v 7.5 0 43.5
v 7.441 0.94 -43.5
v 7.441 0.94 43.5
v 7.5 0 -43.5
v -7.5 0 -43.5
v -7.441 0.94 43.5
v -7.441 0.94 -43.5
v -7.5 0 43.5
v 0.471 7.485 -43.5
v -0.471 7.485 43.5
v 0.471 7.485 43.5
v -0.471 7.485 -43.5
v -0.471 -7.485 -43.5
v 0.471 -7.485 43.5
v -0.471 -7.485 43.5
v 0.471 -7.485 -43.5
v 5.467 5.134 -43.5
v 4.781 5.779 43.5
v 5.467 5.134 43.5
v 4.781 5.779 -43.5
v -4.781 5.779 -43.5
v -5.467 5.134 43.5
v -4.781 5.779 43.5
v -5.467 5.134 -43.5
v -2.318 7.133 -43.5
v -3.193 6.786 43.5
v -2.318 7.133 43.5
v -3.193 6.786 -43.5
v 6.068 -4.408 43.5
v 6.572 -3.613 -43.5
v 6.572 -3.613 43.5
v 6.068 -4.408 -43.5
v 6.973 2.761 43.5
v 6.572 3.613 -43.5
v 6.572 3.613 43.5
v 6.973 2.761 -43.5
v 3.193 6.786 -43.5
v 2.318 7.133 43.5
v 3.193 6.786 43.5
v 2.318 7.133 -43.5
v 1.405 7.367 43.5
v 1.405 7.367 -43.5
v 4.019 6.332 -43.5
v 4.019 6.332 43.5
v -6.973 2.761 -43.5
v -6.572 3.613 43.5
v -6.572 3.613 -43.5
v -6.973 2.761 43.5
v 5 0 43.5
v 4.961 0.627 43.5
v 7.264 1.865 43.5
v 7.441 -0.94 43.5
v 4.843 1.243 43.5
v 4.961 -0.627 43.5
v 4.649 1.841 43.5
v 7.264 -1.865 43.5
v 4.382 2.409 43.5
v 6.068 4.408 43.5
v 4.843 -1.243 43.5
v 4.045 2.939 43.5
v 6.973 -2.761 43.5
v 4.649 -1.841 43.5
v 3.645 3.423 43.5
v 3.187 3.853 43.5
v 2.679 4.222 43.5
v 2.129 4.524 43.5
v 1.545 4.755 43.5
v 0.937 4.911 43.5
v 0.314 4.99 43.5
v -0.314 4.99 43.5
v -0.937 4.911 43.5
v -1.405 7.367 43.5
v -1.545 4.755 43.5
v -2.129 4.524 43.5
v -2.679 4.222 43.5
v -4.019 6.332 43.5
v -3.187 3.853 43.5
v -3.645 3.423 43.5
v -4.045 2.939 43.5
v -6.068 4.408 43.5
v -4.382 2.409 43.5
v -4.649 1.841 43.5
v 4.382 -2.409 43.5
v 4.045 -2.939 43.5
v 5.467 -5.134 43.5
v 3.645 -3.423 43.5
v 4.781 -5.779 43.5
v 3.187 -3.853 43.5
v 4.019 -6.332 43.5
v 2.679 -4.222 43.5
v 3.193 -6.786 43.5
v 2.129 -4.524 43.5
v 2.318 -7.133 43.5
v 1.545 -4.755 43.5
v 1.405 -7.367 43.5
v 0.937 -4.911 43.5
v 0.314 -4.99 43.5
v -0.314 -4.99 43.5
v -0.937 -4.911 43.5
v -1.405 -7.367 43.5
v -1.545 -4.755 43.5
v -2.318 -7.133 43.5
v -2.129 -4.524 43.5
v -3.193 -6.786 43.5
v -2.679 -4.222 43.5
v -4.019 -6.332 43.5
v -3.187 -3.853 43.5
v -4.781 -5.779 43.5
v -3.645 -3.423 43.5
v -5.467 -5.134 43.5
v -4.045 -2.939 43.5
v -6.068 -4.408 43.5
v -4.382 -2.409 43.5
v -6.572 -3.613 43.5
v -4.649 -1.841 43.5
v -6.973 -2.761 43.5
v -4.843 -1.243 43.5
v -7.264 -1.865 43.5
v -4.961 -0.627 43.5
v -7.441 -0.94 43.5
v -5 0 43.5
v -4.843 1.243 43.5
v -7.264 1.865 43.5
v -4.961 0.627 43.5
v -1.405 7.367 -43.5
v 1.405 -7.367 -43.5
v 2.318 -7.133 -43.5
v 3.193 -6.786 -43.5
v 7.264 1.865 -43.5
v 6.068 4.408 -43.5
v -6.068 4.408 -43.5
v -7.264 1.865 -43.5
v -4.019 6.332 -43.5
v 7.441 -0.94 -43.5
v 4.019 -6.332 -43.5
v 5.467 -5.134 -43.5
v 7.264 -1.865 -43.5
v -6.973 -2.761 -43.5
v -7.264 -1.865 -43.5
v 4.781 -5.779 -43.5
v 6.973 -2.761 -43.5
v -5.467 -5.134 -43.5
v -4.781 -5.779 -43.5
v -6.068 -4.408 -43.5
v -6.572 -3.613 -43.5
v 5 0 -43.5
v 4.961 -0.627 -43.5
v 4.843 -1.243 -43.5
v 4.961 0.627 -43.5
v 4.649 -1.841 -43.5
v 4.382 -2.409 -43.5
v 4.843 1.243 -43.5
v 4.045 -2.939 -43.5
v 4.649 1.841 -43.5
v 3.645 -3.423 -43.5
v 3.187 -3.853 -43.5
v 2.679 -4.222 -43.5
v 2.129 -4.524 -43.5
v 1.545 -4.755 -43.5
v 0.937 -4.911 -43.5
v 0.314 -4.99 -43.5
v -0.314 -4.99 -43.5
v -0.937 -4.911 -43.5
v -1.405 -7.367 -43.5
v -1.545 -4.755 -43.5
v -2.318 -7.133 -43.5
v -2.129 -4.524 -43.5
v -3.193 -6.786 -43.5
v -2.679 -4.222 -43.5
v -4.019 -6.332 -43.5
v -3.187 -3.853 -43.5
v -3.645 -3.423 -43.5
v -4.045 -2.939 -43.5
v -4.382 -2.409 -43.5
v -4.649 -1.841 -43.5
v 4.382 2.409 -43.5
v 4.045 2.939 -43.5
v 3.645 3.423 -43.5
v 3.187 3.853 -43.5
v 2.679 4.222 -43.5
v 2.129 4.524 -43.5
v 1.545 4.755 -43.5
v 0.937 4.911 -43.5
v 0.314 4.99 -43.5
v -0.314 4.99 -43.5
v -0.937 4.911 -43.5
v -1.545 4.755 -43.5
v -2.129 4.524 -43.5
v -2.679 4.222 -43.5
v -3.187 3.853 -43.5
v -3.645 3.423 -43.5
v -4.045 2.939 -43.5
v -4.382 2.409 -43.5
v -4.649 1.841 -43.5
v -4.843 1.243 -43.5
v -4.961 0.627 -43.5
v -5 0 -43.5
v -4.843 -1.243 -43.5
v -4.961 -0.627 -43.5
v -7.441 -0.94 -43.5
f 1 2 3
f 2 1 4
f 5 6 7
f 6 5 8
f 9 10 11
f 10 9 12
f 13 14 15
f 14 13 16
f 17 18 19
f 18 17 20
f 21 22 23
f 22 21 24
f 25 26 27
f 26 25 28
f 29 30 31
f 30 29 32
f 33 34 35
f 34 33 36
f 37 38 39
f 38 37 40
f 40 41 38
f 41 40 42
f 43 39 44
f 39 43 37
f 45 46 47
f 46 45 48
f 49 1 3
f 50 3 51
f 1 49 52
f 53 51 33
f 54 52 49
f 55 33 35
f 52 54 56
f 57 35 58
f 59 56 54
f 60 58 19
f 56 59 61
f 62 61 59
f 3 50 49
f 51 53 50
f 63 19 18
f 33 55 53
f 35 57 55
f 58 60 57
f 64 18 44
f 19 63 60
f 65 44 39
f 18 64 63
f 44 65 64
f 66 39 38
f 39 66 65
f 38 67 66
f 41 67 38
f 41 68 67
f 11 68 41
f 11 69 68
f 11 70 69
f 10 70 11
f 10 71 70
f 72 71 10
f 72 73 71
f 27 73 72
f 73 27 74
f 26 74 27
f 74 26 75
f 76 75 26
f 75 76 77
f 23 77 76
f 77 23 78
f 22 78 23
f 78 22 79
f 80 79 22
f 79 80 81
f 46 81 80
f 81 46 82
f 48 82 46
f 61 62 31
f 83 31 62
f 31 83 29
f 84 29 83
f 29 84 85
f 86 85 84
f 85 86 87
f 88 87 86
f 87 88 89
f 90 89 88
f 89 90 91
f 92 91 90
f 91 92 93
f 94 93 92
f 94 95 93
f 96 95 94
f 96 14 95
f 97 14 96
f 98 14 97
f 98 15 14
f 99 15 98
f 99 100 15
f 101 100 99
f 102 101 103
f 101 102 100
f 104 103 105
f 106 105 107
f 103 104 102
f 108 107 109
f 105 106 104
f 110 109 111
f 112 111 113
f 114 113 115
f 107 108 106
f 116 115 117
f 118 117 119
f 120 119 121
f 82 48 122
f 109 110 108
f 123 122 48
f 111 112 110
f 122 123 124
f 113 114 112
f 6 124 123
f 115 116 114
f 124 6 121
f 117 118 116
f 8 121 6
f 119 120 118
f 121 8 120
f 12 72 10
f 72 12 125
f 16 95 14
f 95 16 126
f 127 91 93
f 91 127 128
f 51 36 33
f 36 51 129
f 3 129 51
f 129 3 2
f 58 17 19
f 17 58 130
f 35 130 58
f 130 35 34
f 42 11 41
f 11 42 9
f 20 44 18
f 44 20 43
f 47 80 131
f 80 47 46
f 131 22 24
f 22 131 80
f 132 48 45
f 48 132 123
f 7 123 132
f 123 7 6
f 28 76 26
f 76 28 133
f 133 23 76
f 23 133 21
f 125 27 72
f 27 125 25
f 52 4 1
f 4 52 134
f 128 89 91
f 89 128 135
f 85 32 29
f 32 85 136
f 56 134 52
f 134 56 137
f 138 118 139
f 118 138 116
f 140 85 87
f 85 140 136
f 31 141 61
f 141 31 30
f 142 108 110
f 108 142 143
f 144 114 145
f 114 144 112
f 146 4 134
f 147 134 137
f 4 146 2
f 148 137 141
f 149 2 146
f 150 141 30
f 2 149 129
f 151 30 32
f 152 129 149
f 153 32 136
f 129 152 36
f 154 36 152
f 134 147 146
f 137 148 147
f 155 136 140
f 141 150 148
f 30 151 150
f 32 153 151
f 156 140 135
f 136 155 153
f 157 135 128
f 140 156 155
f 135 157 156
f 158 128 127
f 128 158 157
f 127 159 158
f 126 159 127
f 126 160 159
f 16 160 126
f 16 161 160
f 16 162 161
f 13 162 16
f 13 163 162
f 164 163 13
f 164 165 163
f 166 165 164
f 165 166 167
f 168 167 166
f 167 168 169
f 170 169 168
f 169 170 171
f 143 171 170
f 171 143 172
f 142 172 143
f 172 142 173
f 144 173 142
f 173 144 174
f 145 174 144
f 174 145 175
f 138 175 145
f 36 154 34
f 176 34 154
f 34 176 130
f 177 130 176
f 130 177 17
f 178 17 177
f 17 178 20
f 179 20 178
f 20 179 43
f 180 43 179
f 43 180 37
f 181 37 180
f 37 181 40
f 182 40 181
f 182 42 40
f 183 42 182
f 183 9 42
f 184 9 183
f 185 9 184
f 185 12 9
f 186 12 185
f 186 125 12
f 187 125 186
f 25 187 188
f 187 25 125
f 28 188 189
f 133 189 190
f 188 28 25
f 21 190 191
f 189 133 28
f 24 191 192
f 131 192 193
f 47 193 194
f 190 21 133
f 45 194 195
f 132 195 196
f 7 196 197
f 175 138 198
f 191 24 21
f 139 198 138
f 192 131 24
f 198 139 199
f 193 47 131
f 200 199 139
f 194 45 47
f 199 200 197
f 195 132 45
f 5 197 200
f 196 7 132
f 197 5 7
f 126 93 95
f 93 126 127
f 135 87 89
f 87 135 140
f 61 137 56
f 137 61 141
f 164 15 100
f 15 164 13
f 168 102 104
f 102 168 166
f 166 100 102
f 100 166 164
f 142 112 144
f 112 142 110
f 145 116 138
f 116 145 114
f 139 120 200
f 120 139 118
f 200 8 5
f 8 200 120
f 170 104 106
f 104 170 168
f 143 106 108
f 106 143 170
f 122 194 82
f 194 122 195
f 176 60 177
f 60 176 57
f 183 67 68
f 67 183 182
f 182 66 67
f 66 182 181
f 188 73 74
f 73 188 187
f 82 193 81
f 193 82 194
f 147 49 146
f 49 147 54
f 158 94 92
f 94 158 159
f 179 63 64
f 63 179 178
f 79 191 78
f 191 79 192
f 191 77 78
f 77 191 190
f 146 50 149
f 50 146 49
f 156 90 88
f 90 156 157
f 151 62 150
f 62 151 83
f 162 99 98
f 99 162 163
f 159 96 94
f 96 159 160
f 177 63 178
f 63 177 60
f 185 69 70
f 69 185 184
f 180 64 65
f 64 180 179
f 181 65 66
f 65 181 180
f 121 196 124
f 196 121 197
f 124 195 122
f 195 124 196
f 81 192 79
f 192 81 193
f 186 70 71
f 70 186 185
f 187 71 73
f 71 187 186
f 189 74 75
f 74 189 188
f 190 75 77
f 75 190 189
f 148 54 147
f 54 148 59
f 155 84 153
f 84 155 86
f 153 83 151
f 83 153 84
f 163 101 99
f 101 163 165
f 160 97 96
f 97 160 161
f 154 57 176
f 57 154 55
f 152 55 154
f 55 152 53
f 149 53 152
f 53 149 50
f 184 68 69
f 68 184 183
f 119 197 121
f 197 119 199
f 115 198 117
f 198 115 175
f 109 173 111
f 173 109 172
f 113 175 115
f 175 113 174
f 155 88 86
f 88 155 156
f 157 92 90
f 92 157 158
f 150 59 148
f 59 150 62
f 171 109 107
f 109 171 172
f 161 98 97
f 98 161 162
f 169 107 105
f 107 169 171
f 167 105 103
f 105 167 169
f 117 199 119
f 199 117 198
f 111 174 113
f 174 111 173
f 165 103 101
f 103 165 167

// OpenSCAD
$fn = 50;


difference() {
	union() {
		translate(v = [0, 0, -43.5000000000]) {
			cylinder(h = 87, r = 7.5000000000);
		}
	}
	union() {
		translate(v = [0, 0, -100.0000000000]) {
			cylinder(h = 200, r = 5.0000000000);
		}
	}
}
